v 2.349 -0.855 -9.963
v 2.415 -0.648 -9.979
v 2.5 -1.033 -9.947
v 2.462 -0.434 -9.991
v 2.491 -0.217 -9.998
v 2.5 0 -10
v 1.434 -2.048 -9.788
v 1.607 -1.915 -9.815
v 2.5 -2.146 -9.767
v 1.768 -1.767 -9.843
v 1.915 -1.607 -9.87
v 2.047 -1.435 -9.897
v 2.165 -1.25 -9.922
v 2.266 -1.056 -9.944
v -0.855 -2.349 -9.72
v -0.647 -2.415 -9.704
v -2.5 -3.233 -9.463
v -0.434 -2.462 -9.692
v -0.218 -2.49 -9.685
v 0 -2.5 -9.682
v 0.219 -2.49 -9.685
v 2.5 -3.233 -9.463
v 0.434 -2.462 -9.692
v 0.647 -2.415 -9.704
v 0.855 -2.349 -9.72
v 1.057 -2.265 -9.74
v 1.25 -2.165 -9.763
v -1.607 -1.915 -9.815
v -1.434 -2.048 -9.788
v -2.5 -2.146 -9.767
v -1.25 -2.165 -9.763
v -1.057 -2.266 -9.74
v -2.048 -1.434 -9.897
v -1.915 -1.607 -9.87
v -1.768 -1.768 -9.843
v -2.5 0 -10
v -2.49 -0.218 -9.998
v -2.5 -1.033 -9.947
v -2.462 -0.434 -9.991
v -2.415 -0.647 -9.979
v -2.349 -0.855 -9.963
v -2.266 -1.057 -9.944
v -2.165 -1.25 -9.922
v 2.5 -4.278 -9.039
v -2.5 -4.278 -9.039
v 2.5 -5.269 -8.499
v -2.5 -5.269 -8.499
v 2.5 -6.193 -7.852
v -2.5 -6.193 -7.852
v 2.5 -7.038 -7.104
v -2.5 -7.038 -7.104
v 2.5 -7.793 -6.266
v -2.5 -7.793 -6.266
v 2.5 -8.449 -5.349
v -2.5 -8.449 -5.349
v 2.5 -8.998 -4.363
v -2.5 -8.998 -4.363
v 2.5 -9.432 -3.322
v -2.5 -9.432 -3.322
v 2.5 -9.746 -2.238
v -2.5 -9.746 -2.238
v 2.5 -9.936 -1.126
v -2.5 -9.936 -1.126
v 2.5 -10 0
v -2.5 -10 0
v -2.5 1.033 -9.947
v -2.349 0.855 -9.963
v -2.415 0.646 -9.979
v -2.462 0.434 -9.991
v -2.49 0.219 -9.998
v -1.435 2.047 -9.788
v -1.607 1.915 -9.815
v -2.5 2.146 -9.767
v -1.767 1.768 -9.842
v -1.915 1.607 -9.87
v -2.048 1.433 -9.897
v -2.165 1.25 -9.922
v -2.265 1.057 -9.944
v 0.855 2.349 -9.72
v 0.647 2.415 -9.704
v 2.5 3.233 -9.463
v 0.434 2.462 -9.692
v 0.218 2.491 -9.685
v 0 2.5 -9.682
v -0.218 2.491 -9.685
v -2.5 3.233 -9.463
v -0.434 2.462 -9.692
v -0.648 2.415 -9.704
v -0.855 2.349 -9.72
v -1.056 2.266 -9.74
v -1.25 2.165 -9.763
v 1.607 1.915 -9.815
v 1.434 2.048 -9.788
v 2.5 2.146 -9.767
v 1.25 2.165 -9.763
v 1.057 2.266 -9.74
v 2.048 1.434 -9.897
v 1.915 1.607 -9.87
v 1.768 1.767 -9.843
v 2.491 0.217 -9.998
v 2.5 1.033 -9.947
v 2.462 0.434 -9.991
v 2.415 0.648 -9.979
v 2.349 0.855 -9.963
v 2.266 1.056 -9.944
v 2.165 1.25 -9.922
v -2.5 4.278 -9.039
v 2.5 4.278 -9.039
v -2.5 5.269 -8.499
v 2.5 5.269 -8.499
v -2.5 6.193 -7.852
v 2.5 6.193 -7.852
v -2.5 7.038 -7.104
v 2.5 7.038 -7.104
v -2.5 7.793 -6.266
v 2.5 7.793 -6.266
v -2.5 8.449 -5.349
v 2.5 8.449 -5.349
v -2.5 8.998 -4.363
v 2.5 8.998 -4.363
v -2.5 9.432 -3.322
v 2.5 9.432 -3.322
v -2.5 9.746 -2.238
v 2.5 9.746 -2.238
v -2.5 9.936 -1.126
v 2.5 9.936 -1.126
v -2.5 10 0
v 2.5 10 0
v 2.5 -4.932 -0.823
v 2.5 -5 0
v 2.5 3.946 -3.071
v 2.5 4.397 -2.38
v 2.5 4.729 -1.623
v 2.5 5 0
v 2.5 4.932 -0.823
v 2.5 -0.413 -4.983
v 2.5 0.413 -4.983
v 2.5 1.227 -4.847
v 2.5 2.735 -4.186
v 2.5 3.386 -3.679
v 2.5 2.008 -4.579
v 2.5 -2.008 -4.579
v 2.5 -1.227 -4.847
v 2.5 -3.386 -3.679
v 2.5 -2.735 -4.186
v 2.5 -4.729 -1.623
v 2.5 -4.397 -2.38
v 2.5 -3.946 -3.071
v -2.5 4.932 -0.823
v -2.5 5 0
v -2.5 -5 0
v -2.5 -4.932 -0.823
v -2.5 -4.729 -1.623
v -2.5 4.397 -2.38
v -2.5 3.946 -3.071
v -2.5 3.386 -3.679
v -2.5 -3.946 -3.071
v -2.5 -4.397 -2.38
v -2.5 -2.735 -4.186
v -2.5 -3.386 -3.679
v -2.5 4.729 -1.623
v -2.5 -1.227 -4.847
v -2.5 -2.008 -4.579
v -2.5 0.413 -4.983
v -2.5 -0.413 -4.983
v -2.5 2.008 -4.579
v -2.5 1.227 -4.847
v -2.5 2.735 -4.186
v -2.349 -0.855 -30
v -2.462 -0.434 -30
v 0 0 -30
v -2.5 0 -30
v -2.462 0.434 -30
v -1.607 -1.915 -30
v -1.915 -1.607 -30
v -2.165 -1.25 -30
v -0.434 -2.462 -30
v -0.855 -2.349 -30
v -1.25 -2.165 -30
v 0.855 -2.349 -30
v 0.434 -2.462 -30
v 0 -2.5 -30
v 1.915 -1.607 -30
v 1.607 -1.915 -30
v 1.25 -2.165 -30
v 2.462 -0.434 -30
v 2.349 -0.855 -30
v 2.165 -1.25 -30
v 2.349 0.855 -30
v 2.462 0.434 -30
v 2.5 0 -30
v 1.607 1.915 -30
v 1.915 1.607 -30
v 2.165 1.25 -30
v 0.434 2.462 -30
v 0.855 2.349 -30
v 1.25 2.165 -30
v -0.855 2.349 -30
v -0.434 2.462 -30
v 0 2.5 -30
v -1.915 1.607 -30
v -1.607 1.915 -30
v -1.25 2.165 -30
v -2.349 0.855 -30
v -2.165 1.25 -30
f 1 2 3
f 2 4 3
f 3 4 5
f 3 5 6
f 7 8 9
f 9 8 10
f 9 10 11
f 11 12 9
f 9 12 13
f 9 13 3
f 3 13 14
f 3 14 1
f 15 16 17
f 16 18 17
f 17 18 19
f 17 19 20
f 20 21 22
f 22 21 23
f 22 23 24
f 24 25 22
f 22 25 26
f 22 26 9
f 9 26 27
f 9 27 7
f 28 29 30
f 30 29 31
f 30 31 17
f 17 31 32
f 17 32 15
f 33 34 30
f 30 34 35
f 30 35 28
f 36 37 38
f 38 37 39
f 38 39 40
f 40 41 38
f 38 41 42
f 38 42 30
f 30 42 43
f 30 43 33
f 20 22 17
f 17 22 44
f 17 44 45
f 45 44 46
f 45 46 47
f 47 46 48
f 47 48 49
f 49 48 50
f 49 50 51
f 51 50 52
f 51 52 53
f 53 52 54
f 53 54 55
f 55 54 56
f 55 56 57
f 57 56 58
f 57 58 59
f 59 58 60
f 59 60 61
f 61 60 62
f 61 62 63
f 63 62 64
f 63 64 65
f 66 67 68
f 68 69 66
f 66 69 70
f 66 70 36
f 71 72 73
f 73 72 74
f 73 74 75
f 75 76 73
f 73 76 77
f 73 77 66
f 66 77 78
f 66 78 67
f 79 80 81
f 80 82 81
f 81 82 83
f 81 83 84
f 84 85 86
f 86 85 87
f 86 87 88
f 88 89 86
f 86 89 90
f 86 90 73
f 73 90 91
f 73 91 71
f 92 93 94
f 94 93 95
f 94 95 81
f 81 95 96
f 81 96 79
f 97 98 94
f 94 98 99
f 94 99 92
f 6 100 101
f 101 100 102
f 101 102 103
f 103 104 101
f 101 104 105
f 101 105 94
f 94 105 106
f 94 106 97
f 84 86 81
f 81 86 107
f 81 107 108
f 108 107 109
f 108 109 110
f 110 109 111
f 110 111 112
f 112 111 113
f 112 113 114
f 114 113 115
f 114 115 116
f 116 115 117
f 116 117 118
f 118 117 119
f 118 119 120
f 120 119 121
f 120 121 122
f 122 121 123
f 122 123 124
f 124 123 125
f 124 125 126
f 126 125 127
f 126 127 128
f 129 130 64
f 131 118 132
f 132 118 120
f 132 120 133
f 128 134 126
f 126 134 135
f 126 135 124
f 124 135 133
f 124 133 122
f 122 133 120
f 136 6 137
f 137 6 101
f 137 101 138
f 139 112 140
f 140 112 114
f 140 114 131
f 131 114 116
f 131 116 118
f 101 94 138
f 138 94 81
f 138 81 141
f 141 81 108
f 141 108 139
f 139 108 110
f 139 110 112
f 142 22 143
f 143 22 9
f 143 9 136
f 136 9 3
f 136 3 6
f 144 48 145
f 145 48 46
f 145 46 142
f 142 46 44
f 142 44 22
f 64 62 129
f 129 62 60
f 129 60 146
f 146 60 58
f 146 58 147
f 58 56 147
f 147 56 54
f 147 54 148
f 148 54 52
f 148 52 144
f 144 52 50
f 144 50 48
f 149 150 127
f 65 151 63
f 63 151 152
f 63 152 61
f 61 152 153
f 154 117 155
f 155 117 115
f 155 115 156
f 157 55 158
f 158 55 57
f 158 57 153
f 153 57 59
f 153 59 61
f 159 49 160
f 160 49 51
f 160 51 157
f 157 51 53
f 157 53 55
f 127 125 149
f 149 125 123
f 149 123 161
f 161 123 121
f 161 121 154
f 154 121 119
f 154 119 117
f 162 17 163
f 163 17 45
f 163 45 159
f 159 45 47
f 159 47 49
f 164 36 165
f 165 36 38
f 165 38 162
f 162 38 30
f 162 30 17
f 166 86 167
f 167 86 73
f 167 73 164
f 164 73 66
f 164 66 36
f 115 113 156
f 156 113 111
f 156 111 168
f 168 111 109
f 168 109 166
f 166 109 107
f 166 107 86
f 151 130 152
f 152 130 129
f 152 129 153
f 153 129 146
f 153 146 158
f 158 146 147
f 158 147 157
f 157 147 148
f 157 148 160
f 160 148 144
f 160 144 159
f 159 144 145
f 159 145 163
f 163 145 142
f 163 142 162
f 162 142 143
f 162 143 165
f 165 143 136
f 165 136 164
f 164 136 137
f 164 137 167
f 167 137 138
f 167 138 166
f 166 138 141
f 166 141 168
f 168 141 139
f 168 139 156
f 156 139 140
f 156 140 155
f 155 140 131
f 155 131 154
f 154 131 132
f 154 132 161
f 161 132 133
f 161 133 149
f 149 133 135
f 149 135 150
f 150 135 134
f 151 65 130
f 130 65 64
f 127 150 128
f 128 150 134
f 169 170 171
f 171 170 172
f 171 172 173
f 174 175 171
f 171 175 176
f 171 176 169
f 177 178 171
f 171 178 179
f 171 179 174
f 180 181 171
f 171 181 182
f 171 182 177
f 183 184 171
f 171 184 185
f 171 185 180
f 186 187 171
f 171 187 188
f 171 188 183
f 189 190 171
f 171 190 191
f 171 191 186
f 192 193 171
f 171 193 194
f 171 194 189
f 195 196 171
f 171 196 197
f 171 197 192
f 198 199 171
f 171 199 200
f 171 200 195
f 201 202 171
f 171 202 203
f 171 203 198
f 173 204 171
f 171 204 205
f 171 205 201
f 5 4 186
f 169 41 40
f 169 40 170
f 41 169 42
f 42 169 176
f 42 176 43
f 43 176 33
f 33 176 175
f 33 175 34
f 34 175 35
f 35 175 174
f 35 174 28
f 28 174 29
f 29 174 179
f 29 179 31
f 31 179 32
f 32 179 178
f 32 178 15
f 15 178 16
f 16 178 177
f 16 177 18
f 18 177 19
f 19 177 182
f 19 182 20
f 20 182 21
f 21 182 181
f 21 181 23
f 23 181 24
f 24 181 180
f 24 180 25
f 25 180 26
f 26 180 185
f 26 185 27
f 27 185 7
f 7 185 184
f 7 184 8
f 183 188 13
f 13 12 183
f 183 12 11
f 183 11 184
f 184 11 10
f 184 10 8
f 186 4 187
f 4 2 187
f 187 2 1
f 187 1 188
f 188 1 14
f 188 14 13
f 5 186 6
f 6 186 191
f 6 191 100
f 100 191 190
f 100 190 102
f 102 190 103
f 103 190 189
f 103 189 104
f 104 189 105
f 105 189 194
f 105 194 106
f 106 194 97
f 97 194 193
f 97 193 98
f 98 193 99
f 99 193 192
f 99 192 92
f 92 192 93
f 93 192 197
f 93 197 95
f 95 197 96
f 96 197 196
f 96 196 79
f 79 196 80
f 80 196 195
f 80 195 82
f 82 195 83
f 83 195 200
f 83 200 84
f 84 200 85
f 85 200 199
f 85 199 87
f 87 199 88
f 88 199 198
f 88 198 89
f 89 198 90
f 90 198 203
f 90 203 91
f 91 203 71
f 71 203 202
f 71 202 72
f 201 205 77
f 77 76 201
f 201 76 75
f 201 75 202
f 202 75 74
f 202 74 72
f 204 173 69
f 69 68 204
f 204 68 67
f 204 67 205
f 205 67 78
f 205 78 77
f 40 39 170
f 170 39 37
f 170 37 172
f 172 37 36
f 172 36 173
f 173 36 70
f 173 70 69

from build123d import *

# Parameters (mm, degrees)
SKETCH2_R               = 10
BOSS_EXTRUDE1_DEPTH     = 2.5
CUT_EXTRUDE1_DEPTH      = 1
CUT_EXTRUDE1_DEPTH_BACK = 6
BOSS_EXTRUDE2_REACH     = 32
SKETCH4_R               = 2.5


with BuildPart() as part:
    # Sketch2 → Boss-Extrude1 (new body, symmetric)
    with BuildSketch(Plane(origin=(0, 0, 0), x_dir=(0, 0, -1), z_dir=(1, 0, 0))):
        Circle(SKETCH2_R)
    extrude(amount=BOSS_EXTRUDE1_DEPTH, both=True)

    # Sketch3 → Cut-Extrude1 (cut, two sides)
    with BuildSketch(Plane(origin=(2.5, 0, 0), x_dir=(0, 0, -1), z_dir=(1, 0, 0))) as cut_extrude1_sk:
        with BuildLine():
            Line((0, 5), (0, 10))
            ThreePointArc((0, 10), (-10, 0), (0, -10))
            Line((0, -10), (0, -5))
            ThreePointArc((0, -5), (5, 0), (0, 5))
        make_face()
    extrude(amount=CUT_EXTRUDE1_DEPTH, mode=Mode.SUBTRACT)
    extrude(cut_extrude1_sk.sketch, amount=-CUT_EXTRUDE1_DEPTH_BACK, mode=Mode.SUBTRACT)

    # Sketch4 → Boss-Extrude2 (add, up to next)
    with BuildSketch(Plane(origin=(0, 0, -30), x_dir=(-1, 0, 0), z_dir=(0, 0, -1)), mode=Mode.PRIVATE) as boss_extrude2_sk1:
        Circle(SKETCH4_R)
    boss_extrude2_tool1 = extrude(boss_extrude2_sk1.sketch, amount=-BOSS_EXTRUDE2_REACH, mode=Mode.PRIVATE) - part.part
    add(boss_extrude2_tool1.solids().sort_by_distance((0, 0, -30))[0])


solid = part.part
